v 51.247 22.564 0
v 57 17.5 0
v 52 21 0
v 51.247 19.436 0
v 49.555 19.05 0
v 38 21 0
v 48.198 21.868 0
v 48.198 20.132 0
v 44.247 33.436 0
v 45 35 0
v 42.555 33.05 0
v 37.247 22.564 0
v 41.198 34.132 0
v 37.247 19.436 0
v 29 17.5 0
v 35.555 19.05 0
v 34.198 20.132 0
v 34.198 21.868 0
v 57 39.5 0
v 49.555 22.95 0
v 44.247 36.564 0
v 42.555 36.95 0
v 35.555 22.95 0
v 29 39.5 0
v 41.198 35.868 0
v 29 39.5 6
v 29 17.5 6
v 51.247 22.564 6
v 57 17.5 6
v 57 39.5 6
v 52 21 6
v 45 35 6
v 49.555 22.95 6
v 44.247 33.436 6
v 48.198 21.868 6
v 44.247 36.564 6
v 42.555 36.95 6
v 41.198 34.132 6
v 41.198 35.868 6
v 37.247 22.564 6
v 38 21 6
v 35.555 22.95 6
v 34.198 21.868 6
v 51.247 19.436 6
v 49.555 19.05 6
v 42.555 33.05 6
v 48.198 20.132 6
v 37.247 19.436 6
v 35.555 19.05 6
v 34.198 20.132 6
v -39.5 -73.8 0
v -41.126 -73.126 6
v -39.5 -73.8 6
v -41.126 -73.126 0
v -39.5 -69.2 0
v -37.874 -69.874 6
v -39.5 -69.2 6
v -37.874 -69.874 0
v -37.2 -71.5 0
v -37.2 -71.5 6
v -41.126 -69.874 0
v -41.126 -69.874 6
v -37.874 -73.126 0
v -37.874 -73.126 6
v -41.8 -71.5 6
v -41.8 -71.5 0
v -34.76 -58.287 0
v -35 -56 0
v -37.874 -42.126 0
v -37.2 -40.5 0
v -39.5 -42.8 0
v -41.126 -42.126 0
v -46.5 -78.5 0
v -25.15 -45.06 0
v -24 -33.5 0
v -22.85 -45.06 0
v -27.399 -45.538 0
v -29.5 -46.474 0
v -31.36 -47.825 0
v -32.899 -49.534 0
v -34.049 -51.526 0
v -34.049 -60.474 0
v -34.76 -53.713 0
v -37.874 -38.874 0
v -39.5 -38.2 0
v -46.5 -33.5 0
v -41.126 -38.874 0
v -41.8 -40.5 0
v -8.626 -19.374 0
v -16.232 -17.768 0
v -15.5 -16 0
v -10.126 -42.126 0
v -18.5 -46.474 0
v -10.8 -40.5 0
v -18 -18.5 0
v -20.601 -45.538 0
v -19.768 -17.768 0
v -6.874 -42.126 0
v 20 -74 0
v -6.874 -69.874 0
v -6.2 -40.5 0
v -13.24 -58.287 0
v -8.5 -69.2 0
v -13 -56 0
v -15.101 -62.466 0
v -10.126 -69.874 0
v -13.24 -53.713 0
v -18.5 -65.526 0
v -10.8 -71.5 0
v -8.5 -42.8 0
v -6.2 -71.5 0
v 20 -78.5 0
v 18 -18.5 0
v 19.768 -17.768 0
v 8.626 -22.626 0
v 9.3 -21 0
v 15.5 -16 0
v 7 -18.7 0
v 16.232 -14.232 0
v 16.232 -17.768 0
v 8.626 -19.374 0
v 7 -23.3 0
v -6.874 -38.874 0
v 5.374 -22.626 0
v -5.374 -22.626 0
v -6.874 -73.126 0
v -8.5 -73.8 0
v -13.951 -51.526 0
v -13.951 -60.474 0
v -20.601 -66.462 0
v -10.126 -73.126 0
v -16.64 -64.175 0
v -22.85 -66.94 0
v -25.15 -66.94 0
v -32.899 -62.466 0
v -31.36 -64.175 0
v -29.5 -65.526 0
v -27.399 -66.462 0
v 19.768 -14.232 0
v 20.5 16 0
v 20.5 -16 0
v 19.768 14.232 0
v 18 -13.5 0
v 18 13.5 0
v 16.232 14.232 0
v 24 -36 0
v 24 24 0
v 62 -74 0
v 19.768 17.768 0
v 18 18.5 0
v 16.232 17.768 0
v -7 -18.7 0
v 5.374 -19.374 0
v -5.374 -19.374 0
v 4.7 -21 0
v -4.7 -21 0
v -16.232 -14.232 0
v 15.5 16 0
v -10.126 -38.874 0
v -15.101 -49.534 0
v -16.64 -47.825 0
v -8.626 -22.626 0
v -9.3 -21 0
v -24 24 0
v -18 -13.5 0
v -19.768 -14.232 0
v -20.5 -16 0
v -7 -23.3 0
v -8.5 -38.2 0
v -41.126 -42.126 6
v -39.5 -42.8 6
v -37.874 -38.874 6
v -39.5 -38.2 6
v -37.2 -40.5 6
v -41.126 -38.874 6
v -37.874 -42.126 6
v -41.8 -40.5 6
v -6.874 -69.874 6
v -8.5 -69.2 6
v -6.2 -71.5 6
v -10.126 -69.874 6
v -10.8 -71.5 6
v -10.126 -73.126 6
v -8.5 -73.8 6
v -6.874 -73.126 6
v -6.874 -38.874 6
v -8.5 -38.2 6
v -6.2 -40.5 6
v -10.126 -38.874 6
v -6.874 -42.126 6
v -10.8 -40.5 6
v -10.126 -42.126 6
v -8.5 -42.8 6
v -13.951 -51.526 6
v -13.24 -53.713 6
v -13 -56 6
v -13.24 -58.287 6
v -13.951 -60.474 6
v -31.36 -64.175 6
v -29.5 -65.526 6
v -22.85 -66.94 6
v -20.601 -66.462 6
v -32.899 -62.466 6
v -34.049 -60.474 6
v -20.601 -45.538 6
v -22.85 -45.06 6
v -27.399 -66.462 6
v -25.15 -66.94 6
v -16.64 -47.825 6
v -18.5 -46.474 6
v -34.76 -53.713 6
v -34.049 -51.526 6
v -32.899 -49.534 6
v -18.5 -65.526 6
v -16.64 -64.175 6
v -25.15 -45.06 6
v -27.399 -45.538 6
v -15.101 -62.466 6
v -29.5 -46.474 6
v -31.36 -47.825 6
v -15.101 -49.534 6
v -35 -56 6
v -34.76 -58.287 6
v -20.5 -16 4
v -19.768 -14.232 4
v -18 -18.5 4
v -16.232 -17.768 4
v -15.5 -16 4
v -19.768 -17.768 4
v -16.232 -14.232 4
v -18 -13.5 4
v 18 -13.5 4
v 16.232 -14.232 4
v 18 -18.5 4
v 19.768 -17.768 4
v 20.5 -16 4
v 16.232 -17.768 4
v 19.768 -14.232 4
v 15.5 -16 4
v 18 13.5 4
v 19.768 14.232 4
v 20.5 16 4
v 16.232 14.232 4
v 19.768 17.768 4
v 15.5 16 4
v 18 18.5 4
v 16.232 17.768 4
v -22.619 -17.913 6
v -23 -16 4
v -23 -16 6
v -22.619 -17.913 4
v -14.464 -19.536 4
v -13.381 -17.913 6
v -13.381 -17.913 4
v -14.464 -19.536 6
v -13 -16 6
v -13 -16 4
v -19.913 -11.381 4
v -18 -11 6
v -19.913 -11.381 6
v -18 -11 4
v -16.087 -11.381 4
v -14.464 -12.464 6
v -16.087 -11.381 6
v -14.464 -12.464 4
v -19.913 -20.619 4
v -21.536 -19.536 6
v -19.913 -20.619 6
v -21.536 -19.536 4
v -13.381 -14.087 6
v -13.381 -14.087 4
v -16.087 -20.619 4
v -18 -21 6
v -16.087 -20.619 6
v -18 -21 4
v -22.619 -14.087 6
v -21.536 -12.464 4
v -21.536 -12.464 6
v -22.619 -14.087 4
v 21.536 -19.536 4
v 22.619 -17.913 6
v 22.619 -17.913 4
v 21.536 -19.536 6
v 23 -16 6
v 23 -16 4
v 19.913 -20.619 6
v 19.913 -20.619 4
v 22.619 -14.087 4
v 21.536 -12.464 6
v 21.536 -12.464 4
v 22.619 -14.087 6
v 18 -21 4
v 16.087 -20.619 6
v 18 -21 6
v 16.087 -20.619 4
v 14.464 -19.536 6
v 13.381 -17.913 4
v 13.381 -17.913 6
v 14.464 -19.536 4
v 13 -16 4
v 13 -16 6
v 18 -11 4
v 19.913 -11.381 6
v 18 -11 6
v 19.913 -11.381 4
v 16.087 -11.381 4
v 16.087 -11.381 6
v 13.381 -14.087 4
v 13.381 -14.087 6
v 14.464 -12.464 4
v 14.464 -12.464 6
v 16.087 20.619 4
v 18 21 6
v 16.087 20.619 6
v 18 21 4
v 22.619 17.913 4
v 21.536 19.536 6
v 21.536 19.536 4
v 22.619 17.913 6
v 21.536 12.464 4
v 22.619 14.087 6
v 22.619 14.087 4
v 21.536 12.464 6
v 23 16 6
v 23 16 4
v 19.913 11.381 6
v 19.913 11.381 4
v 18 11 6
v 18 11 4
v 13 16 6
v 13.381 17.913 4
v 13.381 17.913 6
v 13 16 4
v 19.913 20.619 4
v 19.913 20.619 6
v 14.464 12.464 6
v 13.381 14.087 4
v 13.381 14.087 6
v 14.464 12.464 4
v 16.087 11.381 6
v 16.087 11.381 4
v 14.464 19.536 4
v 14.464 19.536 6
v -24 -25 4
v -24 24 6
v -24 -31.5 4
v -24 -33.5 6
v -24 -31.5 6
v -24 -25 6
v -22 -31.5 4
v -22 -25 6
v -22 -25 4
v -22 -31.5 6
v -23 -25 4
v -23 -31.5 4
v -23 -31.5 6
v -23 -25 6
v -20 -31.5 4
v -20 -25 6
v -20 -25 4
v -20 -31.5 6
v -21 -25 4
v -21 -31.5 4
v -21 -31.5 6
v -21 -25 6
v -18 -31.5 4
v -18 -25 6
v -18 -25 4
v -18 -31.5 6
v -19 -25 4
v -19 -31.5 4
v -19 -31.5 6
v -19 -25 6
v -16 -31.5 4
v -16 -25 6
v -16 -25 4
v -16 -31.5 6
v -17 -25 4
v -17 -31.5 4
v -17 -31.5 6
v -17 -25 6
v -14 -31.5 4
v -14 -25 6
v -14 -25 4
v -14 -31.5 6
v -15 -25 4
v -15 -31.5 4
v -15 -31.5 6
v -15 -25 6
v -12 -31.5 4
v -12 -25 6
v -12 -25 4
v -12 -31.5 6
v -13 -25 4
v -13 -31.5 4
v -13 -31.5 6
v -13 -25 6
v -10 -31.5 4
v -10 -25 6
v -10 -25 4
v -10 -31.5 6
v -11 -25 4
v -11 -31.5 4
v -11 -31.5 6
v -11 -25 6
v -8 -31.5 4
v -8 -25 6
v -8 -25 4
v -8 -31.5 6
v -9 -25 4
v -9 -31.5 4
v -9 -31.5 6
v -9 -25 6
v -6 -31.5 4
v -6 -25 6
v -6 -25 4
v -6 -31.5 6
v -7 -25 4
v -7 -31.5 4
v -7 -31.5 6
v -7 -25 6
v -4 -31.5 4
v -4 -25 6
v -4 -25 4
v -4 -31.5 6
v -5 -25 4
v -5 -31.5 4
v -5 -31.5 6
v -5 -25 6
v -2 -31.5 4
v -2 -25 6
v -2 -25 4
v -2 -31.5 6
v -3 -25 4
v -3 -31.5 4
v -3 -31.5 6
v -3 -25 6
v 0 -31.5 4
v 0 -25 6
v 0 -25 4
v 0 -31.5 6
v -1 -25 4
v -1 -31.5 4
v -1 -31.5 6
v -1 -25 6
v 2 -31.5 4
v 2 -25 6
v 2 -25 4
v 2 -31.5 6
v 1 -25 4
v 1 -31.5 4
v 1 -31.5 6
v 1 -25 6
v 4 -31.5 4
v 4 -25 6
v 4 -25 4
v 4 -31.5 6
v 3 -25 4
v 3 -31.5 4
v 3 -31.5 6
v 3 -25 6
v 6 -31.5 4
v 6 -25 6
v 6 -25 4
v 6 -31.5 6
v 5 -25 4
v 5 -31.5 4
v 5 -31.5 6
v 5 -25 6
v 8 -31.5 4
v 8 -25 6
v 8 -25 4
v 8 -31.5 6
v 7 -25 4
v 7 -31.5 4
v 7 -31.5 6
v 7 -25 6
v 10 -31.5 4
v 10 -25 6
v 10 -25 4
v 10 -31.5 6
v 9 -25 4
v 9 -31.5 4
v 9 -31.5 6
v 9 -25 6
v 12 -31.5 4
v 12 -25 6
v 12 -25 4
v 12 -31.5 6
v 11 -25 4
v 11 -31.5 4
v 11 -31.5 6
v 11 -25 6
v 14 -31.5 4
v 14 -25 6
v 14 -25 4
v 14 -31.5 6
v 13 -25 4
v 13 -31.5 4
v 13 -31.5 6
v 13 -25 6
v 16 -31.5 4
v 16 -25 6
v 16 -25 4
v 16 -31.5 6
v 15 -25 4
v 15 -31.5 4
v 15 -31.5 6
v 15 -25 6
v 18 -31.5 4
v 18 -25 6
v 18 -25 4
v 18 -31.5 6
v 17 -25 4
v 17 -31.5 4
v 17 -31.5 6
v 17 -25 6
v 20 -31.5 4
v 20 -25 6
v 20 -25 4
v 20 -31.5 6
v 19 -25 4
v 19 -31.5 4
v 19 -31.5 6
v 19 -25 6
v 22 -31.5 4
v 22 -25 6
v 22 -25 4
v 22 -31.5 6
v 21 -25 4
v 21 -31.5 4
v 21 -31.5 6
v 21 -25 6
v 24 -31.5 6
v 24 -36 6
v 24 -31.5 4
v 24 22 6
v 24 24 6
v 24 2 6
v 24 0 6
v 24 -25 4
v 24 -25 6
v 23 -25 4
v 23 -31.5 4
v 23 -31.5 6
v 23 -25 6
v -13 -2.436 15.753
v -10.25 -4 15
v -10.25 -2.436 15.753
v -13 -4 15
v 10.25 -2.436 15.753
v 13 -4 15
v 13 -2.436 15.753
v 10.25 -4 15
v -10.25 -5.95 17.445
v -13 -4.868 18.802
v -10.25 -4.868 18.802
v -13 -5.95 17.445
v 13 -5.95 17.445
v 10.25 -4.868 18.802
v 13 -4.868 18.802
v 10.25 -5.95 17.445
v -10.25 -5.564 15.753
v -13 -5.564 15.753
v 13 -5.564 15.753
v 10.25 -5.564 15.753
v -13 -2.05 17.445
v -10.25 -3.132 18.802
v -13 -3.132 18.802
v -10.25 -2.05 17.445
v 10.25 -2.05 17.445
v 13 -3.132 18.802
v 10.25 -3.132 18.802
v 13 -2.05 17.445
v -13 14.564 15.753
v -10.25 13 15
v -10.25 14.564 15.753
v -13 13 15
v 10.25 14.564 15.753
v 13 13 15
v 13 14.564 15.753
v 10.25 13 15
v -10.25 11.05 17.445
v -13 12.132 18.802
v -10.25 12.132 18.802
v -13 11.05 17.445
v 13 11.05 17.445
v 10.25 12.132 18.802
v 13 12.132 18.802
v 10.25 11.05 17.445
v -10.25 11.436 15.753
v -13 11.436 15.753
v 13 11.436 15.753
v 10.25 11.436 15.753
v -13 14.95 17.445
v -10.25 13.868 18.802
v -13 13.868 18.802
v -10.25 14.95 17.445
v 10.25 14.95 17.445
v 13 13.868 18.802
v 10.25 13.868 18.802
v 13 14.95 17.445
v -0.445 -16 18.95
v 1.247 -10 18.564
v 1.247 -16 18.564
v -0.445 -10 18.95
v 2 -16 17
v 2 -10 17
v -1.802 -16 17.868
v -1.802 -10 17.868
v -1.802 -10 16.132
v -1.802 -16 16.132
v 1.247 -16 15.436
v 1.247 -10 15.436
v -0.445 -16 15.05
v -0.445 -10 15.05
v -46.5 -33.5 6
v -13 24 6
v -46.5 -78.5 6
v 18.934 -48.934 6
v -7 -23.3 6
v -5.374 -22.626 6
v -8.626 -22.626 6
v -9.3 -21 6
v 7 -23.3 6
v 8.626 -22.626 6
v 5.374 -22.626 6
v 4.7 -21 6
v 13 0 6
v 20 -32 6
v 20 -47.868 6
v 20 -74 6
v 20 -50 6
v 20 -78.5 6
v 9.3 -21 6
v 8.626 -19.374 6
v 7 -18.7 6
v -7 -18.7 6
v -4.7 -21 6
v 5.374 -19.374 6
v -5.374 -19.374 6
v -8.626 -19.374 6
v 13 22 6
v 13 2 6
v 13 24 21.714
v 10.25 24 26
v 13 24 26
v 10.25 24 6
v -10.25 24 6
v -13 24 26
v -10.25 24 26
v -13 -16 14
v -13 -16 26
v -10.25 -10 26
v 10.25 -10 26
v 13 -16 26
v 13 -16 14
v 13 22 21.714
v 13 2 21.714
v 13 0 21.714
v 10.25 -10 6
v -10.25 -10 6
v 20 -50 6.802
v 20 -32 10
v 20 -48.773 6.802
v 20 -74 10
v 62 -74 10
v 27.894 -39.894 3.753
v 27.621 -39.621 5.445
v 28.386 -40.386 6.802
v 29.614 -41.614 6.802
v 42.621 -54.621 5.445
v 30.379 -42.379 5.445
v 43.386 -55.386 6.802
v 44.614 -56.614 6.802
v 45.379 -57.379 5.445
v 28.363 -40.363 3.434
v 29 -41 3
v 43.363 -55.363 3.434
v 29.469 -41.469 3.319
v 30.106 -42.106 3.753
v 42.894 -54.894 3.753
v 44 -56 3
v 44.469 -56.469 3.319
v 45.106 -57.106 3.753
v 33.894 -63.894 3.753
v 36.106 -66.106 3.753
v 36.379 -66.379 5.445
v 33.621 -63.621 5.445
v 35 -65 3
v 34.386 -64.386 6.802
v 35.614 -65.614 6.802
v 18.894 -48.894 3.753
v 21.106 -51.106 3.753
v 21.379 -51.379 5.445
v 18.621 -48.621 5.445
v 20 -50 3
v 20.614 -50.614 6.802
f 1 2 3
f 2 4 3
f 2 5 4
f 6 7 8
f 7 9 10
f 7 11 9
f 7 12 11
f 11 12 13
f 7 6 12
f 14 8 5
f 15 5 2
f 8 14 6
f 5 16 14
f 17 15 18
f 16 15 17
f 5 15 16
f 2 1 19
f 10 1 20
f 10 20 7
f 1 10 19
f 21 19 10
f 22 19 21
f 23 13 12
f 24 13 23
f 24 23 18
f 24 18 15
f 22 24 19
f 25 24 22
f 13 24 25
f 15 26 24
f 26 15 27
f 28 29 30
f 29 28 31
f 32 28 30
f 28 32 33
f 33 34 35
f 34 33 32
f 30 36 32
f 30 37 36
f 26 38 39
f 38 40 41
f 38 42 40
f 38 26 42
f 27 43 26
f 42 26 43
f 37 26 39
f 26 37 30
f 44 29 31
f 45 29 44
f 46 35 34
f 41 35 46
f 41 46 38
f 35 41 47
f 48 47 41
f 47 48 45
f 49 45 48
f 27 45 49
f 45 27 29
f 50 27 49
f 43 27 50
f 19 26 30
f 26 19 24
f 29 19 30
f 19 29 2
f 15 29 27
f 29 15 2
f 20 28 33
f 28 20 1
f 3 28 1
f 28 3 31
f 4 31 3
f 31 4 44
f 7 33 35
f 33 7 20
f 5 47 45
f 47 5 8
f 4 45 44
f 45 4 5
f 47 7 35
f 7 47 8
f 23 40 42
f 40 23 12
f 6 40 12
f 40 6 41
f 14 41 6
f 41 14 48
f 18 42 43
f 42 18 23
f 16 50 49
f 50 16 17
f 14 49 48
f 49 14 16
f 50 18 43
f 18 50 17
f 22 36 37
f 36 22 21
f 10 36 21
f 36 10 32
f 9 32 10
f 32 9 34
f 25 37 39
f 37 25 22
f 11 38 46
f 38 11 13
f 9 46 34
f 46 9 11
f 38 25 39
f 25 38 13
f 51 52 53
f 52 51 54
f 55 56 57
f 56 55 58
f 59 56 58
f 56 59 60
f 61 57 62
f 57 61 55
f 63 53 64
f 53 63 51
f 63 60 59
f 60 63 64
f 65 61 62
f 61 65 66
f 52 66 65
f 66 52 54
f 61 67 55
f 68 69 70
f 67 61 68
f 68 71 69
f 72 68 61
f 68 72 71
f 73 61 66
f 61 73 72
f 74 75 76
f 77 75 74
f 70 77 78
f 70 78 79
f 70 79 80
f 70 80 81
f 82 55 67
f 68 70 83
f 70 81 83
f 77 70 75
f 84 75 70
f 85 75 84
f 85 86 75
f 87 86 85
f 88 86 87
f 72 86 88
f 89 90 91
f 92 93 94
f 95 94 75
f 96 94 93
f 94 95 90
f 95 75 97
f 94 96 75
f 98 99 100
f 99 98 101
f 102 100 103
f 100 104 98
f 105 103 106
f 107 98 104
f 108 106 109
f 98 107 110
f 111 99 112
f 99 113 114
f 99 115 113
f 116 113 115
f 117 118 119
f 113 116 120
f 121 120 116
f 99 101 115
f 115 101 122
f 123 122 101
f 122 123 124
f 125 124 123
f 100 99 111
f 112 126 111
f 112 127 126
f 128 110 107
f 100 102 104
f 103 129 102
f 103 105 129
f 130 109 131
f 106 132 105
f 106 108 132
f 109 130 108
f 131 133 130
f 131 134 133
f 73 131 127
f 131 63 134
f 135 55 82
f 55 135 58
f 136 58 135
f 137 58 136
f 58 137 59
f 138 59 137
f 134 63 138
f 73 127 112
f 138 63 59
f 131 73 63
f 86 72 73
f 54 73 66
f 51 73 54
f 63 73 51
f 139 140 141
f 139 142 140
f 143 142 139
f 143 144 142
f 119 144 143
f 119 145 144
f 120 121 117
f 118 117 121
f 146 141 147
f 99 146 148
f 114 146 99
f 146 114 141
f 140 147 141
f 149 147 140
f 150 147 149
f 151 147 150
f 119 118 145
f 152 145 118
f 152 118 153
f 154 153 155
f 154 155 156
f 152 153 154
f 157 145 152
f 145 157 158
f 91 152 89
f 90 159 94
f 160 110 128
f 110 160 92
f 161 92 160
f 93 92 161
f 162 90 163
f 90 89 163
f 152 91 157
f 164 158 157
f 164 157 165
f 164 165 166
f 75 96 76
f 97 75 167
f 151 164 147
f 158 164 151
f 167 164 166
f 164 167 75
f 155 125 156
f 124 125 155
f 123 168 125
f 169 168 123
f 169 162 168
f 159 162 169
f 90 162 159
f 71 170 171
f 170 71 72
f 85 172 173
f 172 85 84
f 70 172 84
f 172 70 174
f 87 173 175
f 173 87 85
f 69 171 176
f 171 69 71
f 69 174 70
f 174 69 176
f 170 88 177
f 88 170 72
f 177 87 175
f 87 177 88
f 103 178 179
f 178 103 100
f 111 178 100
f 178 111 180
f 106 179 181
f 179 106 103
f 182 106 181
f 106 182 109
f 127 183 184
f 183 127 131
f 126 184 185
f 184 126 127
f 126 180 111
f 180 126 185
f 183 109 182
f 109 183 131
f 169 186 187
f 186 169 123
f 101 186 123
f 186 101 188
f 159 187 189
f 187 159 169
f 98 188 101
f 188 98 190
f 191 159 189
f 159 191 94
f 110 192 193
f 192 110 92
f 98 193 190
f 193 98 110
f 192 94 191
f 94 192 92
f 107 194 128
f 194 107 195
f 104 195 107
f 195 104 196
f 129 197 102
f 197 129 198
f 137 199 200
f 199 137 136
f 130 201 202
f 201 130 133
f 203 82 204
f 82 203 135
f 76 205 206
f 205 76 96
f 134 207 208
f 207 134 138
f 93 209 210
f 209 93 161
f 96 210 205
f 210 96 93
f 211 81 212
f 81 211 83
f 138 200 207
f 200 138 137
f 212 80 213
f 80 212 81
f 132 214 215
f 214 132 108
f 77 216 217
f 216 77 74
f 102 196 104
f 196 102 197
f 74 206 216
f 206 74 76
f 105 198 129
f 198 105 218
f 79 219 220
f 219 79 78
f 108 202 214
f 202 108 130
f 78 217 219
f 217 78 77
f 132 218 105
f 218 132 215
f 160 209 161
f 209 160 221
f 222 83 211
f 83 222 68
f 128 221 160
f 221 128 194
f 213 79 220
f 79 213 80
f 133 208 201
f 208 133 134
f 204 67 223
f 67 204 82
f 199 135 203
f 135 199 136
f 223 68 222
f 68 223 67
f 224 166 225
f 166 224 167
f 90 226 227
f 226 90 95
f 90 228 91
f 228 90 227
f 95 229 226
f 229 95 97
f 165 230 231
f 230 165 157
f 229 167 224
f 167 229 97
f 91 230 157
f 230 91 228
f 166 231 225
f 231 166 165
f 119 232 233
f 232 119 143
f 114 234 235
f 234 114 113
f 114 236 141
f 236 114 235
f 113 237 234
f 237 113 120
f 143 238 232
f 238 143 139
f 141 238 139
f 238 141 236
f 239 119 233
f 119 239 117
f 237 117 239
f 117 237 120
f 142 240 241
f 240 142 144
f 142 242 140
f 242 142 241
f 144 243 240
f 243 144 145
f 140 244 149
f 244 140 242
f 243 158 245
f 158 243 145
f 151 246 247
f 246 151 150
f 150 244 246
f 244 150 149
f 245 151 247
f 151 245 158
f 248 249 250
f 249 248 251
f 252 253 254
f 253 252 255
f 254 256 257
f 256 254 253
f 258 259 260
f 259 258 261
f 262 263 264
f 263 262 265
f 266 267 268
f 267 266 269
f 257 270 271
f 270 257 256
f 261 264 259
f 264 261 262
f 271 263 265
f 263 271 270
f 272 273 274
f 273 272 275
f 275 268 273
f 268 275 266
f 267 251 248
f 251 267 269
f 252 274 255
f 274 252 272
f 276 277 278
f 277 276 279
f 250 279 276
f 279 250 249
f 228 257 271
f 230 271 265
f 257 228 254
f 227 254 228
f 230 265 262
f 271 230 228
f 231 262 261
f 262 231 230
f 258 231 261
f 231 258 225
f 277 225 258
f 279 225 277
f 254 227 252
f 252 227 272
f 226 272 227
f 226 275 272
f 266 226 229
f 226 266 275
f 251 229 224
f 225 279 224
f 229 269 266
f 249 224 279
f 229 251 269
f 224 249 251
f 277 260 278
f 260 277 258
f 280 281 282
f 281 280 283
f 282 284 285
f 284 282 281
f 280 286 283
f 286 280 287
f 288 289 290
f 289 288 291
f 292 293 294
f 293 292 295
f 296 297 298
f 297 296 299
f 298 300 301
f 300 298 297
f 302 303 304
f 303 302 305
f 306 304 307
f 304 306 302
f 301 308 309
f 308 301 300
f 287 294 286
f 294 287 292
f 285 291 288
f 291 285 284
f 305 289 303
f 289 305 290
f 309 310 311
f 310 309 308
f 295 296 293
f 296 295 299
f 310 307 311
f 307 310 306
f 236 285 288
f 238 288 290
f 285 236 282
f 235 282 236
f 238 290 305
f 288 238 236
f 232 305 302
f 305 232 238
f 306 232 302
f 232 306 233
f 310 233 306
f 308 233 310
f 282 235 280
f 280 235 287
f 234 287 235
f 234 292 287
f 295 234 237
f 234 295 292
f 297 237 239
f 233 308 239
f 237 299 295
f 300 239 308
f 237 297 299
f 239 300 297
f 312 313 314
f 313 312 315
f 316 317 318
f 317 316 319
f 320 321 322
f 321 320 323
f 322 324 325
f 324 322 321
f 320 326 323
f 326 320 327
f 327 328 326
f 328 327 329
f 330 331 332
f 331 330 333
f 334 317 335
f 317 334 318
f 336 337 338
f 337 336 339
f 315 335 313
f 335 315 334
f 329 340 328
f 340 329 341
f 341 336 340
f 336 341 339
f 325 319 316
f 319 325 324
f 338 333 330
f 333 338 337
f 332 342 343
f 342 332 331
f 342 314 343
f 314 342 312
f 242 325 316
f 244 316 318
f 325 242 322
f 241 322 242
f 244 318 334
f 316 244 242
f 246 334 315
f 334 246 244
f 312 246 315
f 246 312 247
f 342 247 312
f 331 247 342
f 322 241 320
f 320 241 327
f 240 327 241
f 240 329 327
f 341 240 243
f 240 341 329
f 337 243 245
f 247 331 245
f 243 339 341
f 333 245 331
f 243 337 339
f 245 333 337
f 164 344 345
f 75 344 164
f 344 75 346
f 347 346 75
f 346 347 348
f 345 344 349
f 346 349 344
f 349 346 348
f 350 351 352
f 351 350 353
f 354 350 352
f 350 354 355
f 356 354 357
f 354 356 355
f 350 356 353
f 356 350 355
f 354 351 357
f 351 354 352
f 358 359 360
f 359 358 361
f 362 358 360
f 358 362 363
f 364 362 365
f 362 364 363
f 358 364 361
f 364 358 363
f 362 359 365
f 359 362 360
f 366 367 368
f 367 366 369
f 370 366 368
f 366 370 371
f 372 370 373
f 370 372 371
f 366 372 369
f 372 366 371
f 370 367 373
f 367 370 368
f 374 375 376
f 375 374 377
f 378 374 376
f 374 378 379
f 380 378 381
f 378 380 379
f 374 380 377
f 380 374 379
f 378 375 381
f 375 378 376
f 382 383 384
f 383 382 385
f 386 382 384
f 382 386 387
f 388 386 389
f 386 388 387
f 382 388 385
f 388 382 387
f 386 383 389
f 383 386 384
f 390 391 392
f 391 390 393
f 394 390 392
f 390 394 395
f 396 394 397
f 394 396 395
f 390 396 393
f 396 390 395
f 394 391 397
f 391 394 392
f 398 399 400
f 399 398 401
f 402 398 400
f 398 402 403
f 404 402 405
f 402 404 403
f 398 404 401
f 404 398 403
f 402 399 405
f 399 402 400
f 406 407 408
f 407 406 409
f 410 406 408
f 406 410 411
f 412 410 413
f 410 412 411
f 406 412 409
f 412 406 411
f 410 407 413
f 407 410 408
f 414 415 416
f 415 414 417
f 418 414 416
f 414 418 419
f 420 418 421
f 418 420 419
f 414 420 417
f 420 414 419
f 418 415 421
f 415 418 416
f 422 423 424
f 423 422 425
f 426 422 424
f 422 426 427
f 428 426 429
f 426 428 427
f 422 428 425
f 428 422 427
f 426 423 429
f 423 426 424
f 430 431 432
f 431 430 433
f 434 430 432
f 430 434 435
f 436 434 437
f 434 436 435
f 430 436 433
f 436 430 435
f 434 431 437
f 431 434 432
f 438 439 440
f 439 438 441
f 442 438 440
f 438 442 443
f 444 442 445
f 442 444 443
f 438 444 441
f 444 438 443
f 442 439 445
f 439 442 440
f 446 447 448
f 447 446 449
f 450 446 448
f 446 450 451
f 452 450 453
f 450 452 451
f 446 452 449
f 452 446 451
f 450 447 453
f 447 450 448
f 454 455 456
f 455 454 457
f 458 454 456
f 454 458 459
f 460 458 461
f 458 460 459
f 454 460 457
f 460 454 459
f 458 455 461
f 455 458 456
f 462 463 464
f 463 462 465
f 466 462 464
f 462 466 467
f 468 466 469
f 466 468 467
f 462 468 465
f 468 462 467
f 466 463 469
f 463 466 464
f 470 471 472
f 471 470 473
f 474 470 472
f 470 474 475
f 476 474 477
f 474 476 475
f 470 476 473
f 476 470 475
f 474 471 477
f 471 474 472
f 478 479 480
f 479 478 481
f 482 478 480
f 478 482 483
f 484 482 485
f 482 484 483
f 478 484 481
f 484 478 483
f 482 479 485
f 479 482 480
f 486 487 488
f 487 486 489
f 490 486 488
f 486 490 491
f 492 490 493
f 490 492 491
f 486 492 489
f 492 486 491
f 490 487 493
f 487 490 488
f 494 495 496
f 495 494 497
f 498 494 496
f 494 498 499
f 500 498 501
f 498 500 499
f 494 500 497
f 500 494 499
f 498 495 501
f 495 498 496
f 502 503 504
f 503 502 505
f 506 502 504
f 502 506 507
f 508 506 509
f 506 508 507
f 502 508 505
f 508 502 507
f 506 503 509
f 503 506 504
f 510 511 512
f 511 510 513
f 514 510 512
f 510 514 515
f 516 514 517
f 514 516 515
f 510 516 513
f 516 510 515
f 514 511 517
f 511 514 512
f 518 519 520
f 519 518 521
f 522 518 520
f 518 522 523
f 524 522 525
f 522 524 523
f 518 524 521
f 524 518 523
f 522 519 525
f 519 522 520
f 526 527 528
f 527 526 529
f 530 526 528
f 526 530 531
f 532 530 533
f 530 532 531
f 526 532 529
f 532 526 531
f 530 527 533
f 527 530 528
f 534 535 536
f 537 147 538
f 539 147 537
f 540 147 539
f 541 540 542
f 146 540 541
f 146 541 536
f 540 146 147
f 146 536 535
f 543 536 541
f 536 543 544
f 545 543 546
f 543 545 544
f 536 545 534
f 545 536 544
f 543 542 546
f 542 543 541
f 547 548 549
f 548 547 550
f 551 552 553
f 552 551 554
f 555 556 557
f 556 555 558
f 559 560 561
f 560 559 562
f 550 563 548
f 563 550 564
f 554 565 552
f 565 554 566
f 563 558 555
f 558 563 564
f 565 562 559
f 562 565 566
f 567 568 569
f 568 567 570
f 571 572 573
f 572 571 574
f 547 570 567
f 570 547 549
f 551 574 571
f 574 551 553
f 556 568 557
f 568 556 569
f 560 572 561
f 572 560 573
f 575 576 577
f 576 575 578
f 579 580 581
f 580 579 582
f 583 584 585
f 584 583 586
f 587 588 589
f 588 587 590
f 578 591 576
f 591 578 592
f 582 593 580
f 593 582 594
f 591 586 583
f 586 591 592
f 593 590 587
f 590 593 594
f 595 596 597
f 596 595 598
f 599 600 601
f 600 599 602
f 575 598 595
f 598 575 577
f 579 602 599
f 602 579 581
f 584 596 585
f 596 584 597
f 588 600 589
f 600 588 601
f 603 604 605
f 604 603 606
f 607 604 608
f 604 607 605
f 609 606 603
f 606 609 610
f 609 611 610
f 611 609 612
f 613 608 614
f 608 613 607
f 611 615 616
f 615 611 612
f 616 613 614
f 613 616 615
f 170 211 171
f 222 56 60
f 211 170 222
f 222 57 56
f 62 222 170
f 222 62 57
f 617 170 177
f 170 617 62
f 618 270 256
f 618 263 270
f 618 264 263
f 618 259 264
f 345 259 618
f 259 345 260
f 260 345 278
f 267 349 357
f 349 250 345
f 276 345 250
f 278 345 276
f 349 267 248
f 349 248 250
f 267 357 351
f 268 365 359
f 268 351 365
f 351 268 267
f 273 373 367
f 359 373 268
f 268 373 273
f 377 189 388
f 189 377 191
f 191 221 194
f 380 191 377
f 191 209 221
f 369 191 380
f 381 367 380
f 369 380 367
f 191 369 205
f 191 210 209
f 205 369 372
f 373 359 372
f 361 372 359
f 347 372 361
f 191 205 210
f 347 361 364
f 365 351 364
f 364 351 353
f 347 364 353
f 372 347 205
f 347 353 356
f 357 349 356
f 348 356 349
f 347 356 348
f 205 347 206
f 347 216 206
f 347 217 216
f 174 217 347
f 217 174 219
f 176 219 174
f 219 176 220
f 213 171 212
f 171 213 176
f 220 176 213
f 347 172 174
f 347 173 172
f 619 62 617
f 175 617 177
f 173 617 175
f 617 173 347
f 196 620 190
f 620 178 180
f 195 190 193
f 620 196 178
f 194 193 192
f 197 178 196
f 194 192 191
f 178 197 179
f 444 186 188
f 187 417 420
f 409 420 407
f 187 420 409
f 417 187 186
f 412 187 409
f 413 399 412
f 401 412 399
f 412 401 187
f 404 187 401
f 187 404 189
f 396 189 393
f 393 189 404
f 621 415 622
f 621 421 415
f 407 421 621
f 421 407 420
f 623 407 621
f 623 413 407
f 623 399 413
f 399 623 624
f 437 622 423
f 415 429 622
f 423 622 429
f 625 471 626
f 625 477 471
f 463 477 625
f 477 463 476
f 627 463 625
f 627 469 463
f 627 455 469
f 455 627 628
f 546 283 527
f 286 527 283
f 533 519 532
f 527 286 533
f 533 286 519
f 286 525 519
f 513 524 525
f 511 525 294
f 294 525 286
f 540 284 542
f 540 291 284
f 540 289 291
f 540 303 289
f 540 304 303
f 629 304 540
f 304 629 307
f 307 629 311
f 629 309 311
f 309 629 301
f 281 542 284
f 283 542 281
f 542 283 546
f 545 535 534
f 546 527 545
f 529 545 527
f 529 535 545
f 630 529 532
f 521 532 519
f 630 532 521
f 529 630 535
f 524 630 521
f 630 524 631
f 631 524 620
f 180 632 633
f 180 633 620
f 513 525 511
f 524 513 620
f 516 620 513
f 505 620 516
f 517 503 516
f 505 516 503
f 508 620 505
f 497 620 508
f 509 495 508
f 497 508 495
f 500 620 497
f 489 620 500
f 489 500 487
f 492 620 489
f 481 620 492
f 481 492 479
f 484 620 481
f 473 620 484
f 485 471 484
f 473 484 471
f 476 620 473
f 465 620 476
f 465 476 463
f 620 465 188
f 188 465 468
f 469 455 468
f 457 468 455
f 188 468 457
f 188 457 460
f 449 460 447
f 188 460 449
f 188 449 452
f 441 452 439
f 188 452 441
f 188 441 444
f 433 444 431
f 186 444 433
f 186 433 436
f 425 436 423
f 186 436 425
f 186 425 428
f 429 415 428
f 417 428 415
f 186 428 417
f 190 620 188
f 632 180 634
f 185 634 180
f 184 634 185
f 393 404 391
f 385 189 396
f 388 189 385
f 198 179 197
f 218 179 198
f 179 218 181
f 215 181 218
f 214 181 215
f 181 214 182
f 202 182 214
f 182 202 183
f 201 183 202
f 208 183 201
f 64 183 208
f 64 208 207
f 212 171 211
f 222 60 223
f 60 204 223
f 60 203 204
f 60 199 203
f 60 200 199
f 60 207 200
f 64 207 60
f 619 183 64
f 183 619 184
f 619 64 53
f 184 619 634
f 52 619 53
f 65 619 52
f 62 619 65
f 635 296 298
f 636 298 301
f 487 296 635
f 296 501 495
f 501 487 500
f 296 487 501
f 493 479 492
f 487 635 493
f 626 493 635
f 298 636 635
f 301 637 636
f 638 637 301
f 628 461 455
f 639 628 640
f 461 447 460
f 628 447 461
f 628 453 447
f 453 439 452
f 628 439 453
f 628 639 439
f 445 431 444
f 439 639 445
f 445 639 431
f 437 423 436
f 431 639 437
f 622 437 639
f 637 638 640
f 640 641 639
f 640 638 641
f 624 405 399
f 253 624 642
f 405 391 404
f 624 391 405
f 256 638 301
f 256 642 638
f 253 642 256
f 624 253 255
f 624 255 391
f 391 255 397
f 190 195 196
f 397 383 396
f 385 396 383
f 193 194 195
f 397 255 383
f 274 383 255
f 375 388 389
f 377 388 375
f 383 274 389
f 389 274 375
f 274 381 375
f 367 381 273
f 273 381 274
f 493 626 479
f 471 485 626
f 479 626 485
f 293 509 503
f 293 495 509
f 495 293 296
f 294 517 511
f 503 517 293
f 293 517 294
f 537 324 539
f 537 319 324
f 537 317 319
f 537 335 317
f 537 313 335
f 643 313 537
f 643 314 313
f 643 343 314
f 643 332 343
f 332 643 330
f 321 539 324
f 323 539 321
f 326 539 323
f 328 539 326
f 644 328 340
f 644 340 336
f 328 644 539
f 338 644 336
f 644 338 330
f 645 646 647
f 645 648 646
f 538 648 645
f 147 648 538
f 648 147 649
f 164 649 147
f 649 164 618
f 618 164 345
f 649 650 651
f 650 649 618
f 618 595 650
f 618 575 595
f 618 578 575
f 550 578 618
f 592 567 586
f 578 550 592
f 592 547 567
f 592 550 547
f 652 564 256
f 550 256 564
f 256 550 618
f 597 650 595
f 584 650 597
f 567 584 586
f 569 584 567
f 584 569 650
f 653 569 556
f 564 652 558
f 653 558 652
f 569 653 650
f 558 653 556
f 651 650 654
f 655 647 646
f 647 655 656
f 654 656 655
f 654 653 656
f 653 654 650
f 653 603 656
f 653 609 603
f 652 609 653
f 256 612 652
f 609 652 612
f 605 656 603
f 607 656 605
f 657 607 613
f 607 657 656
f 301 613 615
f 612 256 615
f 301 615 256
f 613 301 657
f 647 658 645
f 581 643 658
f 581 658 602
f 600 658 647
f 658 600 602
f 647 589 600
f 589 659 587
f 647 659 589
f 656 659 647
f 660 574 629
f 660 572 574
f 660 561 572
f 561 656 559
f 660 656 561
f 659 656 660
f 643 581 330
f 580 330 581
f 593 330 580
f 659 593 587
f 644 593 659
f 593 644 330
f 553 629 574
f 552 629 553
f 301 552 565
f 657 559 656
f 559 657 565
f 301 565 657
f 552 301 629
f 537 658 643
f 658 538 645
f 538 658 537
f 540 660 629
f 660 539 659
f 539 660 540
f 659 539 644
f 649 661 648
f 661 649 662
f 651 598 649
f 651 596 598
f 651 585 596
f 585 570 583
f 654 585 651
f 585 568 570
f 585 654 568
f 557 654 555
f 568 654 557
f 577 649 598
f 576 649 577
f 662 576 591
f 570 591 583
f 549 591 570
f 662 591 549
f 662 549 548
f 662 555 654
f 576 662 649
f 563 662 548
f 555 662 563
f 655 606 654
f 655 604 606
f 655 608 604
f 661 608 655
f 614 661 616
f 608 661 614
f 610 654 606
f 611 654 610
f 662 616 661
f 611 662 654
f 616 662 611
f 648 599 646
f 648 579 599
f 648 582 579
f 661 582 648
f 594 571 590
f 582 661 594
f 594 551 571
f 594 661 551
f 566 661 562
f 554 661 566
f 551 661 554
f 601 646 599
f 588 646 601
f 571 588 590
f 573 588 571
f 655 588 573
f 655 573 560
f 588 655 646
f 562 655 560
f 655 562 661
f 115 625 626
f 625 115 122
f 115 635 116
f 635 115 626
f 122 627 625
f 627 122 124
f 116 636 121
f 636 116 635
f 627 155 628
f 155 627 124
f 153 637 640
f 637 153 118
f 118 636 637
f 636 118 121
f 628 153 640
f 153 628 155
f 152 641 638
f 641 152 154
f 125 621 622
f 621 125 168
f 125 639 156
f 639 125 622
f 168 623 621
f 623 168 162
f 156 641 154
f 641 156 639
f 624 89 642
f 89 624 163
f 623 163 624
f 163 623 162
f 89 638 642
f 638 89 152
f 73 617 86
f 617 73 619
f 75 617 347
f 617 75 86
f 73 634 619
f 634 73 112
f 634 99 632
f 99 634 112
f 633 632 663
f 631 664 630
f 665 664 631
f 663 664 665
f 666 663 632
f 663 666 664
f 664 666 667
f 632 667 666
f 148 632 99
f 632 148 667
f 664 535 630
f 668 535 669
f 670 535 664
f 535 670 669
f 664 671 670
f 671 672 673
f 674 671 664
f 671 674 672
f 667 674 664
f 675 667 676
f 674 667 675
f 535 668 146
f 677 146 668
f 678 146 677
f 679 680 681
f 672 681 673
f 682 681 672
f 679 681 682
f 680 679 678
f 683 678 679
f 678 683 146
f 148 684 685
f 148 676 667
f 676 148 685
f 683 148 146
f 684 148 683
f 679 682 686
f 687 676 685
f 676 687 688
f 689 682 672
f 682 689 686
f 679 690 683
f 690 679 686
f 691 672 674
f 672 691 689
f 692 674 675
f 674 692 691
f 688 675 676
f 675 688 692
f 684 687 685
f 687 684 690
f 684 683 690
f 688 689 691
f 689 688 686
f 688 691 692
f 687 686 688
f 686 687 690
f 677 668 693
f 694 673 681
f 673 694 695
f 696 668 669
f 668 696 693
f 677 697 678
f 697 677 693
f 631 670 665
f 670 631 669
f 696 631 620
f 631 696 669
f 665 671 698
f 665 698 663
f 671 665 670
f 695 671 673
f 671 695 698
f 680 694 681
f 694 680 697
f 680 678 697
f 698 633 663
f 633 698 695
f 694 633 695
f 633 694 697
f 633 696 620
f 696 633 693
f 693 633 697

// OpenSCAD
//X Gantry non-mirror side
mirror([0,1,0]){
    difference(){
        body();
        Carrage_Mount();
        Screw_Pockets();
        Screws();
        
        //2020 pocket
        translate([0,-10,6])linear_extrude(22){square([20.5,40],center=true);} 
        //Clean supports
        translate([-23.01,-9,20.01])linear_extrude(5){square([20,30],center=true);}       
        Screws();

        BeltGrooves();
        
        //Heat set insert holes for belt
        translate([7,21,0]){cylinder(30,2.3,2.3);}
        translate([-7,21,0]){cylinder(30,2.3,2.3);} 

    }
}

BeltCap();

difference(){
    NewBody();
    translate([-24,-56,0]){StepperMount();}
    translate([0,35,0]){cylinder(30,2.3,2.3);} 

    MirrorMountScrews();
}


module MirrorMountScrews(){
    r = 2;
    translate([35,-65,5])rotate(a=[-45,90,0]){cylinder(20,r,r);}
    translate([20,-50,5])rotate(a=[-45,90,0]){cylinder(30,r,r);}
}


// This is a new body area special for the mirror bits
module NewBody(){
    //Stepper body place
    translate([-24 ,-56,0])linear_extrude(6){square([45,45],center=true);}
    //Bridge the gap between the motor mount and mirror mount
    translate([9 ,-56,0])linear_extrude(6){square([22,45],center=true);}
    
    mirror([1,1])translate([74,-62]){MirrorMount();}
}



module MirrorMount(){
    x = -42;
    y = 42;
    zMax = 10;
    
    points = [
    [0,0,0],     //0
    [x,y,0],     //1
    [0,y,0],    //2
    [0,0,zMax],  //3
    [0,y,zMax],  //4
    [x,y,zMax]]; //5

//Faces are defined looking straight at them
    faces=[
    [0,1,2],  // bottom
    [3,4,5],  // top
    [0,2,4,3],  // right
    [2,1,5,4],  // back
    [1,0,3,5]]; // left
    
    polyhedron(points, faces);
}


module BeltCap(){
    x = 43;
    y = 00;
    
    difference(){
        translate([x,28.5,0])linear_extrude(6){square([28,22],center=true);}
      
        translate([7+x,21+y,0]){cylinder(30,2,2);}
        translate([-7+x,21+y,0]){cylinder(30,2,2);} 
        translate([0+x,35+y,0]){cylinder(30,2,2);} 
}
}

module StepperMount(){
    translate([-15.5,-15.5,0]){cylinder(30,2.3,2.3);}
    translate([-15.5,15.5,0]){cylinder(30,2.3,2.3);}
    translate([15.5,-15.5,0]){cylinder(30,2.3,2.3);}
    translate([15.5,15.5,0]){cylinder(30,2.3,2.3);}
    cylinder(30,11,11);
}

module BeltGrooves(){
    for(i = [0:25]){
        translate([(2*i)-25,25,4]){cube([1,6.5,6]);}
    }
}

//Holes for the heat set screws
module ScrewTopOfBeltPulley(){
    translate([-16,-3.5,15]){cylinder(30,2,2);}
    translate([-34,-3.5,15]){cylinder(30,2,2);}
}

module BeltPulleyPocket(){
    r = 10.5;
    x = -25;
    y = -16;
    z = 10;
    translate([x,y,z]){cylinder(10,r,r);}
    translate([(x-10),(y-20),z]){cube([20,20,10]);}
    translate([x,y,0]){cylinder(30,2.7,2.7);}
    translate([x,y,8]){cylinder(30,4,4);}
}

module body(){
    //Base plate
    translate([0,6,0])linear_extrude(6){square([48,60],center=true);}
    //2020 holder
    translate([0,-4,6])linear_extrude(20){square([26,40],center=true);}

    translate([0,35,0])linear_extrude(6){square([10,8],center=true);}

    Supports(-22);
    Supports(0);
}

module Supports(y){
    x = 24;
    z = 26;
    
    points = [
    [0,y,6],       //0
    [x,y,6],        //1
    [x,(y-2),6],    //2
    [0,(y-2),6],   //3
    [0,y,z],      //4
    [10,y,z],       //5
    [10,(y-2),z],   //6
    [0,(y-2),z]]; //7
    faces=[
    [0,1,2,3],  // bottom
    [4,5,1,0],  // front
    [7,6,5,4],  // top
    [5,6,2,1],  // right
    [6,7,3,2],  // back
    [7,4,0,3]]; // left
    
    polyhedron(points, faces);
}

module Screws(){
    r = 2;
    translate([-15,4,17])rotate(a=[0,90,0]){cylinder(30,r,r);}
    translate([-15,-13,17])rotate(a=[0,90,0]){cylinder(30,r,r);}
    translate([0,20,17])rotate(a=[90,0,0]){cylinder(30,r,r);}
}

module Carrage_Mount(){
    translate([-18,16]){cylinder(10,2.5,2.5);}
//    translate([-18,-16]){cylinder(10,2.5,2.5);}
    translate([18,16]){cylinder(10,2.5,2.5);}
    translate([18,-16]){cylinder(10,2.5,2.5);}
}

module Screw_Pockets(){
    r = 5;
    translate([-18,16,4]){cylinder(10,r,r);}
//    translate([-18,-16,4]){cylinder(10,r,r);}
    translate([18,16,4]){cylinder(10,r,r);}
    translate([18,-16,4]){cylinder(10,r,r);}
}
